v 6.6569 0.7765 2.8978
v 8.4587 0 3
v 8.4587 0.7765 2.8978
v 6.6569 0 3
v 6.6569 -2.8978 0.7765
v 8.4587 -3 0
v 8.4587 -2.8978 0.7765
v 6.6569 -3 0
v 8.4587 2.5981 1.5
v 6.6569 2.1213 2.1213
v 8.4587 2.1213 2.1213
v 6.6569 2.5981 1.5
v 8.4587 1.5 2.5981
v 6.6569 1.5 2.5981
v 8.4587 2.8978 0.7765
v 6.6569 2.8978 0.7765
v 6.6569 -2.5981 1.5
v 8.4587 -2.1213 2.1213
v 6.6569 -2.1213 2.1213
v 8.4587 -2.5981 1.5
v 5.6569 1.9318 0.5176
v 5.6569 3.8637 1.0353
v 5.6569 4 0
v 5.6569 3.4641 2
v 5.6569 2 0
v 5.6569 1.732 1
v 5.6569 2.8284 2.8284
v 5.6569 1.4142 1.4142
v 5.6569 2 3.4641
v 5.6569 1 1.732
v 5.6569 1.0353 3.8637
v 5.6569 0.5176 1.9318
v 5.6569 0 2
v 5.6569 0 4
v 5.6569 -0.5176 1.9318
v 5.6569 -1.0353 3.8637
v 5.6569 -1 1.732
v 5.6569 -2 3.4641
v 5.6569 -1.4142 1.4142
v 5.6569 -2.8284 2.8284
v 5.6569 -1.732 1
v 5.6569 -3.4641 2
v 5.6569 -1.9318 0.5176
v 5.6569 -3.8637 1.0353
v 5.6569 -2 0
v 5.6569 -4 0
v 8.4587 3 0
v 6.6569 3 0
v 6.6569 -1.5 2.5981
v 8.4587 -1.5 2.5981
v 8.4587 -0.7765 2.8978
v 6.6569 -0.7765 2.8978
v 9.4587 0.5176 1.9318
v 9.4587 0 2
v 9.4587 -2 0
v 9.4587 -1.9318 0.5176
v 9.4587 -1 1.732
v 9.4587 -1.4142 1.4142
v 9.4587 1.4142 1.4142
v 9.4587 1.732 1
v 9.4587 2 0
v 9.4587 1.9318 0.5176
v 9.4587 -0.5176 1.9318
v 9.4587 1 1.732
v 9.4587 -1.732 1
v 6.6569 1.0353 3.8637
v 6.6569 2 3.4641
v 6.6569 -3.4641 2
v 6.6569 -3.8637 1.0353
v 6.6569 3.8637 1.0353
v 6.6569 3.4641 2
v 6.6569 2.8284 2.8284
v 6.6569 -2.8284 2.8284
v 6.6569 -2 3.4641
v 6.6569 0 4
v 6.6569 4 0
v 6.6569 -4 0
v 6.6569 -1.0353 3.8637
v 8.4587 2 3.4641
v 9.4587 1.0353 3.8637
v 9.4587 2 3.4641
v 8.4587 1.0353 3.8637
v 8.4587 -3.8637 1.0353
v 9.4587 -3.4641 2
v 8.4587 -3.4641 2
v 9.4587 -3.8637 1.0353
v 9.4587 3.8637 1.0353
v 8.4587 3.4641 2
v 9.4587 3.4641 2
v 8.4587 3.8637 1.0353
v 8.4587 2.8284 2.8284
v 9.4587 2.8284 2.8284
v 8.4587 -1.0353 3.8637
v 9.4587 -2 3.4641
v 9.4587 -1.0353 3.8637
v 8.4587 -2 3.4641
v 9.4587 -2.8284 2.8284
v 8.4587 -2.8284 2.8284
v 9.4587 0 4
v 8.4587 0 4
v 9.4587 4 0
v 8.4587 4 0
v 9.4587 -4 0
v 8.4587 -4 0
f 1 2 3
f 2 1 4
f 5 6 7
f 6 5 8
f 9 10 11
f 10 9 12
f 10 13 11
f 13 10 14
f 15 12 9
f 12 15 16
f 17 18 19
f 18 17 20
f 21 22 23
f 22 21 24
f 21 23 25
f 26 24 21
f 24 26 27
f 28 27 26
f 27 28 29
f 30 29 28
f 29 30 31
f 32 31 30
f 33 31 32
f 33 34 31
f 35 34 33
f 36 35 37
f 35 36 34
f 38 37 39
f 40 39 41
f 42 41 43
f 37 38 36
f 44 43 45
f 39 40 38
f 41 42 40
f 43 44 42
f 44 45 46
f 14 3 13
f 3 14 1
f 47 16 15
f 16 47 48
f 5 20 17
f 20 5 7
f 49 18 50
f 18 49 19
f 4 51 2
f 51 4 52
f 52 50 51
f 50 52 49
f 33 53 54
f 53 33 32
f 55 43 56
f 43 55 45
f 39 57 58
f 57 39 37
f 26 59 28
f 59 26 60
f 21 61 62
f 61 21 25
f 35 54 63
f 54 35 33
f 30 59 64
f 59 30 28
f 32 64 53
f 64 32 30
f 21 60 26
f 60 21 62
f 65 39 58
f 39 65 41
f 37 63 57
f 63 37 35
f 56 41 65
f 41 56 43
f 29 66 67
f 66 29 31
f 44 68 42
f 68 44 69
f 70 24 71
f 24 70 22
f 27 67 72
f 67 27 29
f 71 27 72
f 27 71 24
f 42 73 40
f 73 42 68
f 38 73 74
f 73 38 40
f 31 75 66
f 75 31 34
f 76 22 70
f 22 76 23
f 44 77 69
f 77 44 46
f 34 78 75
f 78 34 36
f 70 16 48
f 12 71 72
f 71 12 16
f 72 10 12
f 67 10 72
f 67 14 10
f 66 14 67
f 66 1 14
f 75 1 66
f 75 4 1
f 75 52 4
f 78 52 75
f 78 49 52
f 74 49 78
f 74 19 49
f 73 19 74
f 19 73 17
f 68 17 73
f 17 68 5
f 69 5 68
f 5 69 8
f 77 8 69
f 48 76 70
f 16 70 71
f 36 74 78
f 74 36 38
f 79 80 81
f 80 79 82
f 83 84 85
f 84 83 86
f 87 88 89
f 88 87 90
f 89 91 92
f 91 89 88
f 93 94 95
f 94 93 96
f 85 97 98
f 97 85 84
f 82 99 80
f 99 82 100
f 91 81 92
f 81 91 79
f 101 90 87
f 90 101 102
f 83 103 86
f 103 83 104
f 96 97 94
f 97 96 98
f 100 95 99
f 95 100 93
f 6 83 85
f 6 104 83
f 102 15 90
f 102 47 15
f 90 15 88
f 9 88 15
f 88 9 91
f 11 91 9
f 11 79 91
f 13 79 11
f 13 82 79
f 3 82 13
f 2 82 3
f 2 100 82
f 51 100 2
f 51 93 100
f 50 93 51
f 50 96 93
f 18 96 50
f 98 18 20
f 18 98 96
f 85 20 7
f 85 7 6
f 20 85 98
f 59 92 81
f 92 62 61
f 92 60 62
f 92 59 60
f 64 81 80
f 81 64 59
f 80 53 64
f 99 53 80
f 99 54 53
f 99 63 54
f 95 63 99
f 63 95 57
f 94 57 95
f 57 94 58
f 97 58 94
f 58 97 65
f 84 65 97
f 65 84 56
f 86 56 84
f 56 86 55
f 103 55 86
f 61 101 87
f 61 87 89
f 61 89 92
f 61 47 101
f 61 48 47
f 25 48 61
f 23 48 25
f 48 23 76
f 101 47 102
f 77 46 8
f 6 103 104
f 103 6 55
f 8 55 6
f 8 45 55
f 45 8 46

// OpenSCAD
// file: ../build_environments.scad
// build_environments.scad: modules to build level sections
//

module pool(diameter=10.0, wall_height=2.0, step_width=3.0, connections=[])
{
    difference() {
        union() {
        difference() {
            cylinder(h=0.5,r1=diameter+step_width,r2=diameter+step_width,$fn=48);
            translate([0,0,-0.1])
                cylinder(h=0.7,r1=diameter,r2=diameter,$fn=48);
        }
        difference() {
            cylinder(h=wall_height,r1=diameter+step_width+1.0,r2=diameter+step_width+1.0,$fn=48);
            translate([0,0,-0.1])
                cylinder(h=wall_height+0.2,r1=diameter+step_width,r2=diameter+step_width,$fn=48);
        }
        }
    
        for (c = connections)
        {
            rotate([0,90,0]) {
                angle = atan2(c[1],c[0]);
                rotate([-angle,0,0]) {
                    cylinder(h=diameter+5.0,r1=c[2],r2=c[2],$fn=48);
                }
            }
        }
    }
}

module straight(length=10.0, width=2.0, dy1=0.0, dy2=0.0, dz=0.0)
{
    dims = [0, 0, 0, 0, 0, (dz/length)];
    matrix = [
        [ 1, dims[0], dims[1], 0 ],
        [ dims[2], 1, dims[4], 0 ],
        [ dims[5], dims[3], 1, 0 ],
        [ 0, 0, 0, 1 ]
    ];
    multmatrix(matrix)
    difference() {
        translate([dy1,0,0])
        union() {
            rotate([0,90,0]) {
                difference() {
                    cylinder(h=(length-dy1-dy2),r1=width+1.0,r2=width+1.0,$fn=24);
                    translate([0,0,-0.1])
                        cylinder(h=(length-dy1-dy2+0.2),r1=width,r2=width,$fn=24);
                }
                difference() {
                    cylinder(h=1.0,r1=width+2.0,r2=width+2.0,$fn=24);
                    translate([0,0,-0.1])
                        cylinder(h=1.2,r1=width,r2=width,$fn=24);
                }
                translate([0,0,(length-dy1-dy2)-1.0]) {
                    difference() {
                        cylinder(h=1.0,r1=width+2.0,r2=width+2.0,$fn=24);
                        translate([0,0,-0.1])
                            cylinder(h=1.2,r1=width,r2=width,$fn=24);
                    }
                }
            }
        }
        translate([0,0,-(2*width+4.0)/2])
            cube([3*length,3*length,2*width+4.0],center=true);
    }
}

module curve(p0=[0,0], center=[0,0], dir=1, angle=0.0, width=2.0)
{
    radius = sqrt((p0[0]-center[0])*(p0[0]-center[0]) + (p0[1]-center[1])*(p0[1]-center[1]));
    if (dir == 0) {
        difference() {
            rotate([0,0,-90])
            difference() {
                rotate_extrude(angle = angle, convexity = 10, $fn=32)
                    translate([radius, 0, 0])
                        circle(r = width+1.0,$fn=24);
                rotate([0,0,-1.0])
                    rotate_extrude(angle = angle+2.0, convexity = 10, $fn=32)
                        translate([radius, 0, 0])
                            circle(r = width,$fn=24);
            }
            translate([0,0,-(2*width+4.0)/2])
                cube([5*radius,5*radius,2*width+4.0],center=true);
        }
    }
    else {
        difference() {
            rotate([0,0,90])
            difference() {
                rotate_extrude(angle = -angle, convexity = 10, $fn=32)
                    translate([radius, 0, 0])
                        circle(r = width+1.0,$fn=24);
                rotate([0,0,1.0])
                    rotate_extrude(angle = -angle-2.0, convexity = 10, $fn=32)
                        translate([radius, 0, 0])
                            circle(r = width,$fn=24);
            }
            translate([0,0,-(2*width+4.0)/2])
                cube([5*radius,5*radius,2*width+4.0],center=true);
        }
    }

}

// test pool
//pool(diameter=12.0000, wall_height=3.0000, step_width=3.0000, connections=[[0.0000,-26.0000,2.0000], [23.6074,0.0000,2.0000]]);

// test straight, slope
//straight(length=26.0000, width=2.0000, dy1=11.8322, dy2=6.7082, dz=0.0000);
//straight(length=29.1549, width=12.0000, dy1=0.0000, dy2=0.0000, dz=-15.0000);

// test curve
//curve(p0=[23.6074, 0.0000], center=[23.6074, 5.0000], dir=0, angle=60.1011, width=2.0000);
//curve(p0=[33.6426, 12.4219], center=[37.9771, 9.9295], dir=1, angle=120.4627, width=2.0000);
// main file
use <../build_environments.scad>;
straight(length=17.2047, width=2.0000, dy1=5.6569, dy2=7.7460, dz=0.0000);
